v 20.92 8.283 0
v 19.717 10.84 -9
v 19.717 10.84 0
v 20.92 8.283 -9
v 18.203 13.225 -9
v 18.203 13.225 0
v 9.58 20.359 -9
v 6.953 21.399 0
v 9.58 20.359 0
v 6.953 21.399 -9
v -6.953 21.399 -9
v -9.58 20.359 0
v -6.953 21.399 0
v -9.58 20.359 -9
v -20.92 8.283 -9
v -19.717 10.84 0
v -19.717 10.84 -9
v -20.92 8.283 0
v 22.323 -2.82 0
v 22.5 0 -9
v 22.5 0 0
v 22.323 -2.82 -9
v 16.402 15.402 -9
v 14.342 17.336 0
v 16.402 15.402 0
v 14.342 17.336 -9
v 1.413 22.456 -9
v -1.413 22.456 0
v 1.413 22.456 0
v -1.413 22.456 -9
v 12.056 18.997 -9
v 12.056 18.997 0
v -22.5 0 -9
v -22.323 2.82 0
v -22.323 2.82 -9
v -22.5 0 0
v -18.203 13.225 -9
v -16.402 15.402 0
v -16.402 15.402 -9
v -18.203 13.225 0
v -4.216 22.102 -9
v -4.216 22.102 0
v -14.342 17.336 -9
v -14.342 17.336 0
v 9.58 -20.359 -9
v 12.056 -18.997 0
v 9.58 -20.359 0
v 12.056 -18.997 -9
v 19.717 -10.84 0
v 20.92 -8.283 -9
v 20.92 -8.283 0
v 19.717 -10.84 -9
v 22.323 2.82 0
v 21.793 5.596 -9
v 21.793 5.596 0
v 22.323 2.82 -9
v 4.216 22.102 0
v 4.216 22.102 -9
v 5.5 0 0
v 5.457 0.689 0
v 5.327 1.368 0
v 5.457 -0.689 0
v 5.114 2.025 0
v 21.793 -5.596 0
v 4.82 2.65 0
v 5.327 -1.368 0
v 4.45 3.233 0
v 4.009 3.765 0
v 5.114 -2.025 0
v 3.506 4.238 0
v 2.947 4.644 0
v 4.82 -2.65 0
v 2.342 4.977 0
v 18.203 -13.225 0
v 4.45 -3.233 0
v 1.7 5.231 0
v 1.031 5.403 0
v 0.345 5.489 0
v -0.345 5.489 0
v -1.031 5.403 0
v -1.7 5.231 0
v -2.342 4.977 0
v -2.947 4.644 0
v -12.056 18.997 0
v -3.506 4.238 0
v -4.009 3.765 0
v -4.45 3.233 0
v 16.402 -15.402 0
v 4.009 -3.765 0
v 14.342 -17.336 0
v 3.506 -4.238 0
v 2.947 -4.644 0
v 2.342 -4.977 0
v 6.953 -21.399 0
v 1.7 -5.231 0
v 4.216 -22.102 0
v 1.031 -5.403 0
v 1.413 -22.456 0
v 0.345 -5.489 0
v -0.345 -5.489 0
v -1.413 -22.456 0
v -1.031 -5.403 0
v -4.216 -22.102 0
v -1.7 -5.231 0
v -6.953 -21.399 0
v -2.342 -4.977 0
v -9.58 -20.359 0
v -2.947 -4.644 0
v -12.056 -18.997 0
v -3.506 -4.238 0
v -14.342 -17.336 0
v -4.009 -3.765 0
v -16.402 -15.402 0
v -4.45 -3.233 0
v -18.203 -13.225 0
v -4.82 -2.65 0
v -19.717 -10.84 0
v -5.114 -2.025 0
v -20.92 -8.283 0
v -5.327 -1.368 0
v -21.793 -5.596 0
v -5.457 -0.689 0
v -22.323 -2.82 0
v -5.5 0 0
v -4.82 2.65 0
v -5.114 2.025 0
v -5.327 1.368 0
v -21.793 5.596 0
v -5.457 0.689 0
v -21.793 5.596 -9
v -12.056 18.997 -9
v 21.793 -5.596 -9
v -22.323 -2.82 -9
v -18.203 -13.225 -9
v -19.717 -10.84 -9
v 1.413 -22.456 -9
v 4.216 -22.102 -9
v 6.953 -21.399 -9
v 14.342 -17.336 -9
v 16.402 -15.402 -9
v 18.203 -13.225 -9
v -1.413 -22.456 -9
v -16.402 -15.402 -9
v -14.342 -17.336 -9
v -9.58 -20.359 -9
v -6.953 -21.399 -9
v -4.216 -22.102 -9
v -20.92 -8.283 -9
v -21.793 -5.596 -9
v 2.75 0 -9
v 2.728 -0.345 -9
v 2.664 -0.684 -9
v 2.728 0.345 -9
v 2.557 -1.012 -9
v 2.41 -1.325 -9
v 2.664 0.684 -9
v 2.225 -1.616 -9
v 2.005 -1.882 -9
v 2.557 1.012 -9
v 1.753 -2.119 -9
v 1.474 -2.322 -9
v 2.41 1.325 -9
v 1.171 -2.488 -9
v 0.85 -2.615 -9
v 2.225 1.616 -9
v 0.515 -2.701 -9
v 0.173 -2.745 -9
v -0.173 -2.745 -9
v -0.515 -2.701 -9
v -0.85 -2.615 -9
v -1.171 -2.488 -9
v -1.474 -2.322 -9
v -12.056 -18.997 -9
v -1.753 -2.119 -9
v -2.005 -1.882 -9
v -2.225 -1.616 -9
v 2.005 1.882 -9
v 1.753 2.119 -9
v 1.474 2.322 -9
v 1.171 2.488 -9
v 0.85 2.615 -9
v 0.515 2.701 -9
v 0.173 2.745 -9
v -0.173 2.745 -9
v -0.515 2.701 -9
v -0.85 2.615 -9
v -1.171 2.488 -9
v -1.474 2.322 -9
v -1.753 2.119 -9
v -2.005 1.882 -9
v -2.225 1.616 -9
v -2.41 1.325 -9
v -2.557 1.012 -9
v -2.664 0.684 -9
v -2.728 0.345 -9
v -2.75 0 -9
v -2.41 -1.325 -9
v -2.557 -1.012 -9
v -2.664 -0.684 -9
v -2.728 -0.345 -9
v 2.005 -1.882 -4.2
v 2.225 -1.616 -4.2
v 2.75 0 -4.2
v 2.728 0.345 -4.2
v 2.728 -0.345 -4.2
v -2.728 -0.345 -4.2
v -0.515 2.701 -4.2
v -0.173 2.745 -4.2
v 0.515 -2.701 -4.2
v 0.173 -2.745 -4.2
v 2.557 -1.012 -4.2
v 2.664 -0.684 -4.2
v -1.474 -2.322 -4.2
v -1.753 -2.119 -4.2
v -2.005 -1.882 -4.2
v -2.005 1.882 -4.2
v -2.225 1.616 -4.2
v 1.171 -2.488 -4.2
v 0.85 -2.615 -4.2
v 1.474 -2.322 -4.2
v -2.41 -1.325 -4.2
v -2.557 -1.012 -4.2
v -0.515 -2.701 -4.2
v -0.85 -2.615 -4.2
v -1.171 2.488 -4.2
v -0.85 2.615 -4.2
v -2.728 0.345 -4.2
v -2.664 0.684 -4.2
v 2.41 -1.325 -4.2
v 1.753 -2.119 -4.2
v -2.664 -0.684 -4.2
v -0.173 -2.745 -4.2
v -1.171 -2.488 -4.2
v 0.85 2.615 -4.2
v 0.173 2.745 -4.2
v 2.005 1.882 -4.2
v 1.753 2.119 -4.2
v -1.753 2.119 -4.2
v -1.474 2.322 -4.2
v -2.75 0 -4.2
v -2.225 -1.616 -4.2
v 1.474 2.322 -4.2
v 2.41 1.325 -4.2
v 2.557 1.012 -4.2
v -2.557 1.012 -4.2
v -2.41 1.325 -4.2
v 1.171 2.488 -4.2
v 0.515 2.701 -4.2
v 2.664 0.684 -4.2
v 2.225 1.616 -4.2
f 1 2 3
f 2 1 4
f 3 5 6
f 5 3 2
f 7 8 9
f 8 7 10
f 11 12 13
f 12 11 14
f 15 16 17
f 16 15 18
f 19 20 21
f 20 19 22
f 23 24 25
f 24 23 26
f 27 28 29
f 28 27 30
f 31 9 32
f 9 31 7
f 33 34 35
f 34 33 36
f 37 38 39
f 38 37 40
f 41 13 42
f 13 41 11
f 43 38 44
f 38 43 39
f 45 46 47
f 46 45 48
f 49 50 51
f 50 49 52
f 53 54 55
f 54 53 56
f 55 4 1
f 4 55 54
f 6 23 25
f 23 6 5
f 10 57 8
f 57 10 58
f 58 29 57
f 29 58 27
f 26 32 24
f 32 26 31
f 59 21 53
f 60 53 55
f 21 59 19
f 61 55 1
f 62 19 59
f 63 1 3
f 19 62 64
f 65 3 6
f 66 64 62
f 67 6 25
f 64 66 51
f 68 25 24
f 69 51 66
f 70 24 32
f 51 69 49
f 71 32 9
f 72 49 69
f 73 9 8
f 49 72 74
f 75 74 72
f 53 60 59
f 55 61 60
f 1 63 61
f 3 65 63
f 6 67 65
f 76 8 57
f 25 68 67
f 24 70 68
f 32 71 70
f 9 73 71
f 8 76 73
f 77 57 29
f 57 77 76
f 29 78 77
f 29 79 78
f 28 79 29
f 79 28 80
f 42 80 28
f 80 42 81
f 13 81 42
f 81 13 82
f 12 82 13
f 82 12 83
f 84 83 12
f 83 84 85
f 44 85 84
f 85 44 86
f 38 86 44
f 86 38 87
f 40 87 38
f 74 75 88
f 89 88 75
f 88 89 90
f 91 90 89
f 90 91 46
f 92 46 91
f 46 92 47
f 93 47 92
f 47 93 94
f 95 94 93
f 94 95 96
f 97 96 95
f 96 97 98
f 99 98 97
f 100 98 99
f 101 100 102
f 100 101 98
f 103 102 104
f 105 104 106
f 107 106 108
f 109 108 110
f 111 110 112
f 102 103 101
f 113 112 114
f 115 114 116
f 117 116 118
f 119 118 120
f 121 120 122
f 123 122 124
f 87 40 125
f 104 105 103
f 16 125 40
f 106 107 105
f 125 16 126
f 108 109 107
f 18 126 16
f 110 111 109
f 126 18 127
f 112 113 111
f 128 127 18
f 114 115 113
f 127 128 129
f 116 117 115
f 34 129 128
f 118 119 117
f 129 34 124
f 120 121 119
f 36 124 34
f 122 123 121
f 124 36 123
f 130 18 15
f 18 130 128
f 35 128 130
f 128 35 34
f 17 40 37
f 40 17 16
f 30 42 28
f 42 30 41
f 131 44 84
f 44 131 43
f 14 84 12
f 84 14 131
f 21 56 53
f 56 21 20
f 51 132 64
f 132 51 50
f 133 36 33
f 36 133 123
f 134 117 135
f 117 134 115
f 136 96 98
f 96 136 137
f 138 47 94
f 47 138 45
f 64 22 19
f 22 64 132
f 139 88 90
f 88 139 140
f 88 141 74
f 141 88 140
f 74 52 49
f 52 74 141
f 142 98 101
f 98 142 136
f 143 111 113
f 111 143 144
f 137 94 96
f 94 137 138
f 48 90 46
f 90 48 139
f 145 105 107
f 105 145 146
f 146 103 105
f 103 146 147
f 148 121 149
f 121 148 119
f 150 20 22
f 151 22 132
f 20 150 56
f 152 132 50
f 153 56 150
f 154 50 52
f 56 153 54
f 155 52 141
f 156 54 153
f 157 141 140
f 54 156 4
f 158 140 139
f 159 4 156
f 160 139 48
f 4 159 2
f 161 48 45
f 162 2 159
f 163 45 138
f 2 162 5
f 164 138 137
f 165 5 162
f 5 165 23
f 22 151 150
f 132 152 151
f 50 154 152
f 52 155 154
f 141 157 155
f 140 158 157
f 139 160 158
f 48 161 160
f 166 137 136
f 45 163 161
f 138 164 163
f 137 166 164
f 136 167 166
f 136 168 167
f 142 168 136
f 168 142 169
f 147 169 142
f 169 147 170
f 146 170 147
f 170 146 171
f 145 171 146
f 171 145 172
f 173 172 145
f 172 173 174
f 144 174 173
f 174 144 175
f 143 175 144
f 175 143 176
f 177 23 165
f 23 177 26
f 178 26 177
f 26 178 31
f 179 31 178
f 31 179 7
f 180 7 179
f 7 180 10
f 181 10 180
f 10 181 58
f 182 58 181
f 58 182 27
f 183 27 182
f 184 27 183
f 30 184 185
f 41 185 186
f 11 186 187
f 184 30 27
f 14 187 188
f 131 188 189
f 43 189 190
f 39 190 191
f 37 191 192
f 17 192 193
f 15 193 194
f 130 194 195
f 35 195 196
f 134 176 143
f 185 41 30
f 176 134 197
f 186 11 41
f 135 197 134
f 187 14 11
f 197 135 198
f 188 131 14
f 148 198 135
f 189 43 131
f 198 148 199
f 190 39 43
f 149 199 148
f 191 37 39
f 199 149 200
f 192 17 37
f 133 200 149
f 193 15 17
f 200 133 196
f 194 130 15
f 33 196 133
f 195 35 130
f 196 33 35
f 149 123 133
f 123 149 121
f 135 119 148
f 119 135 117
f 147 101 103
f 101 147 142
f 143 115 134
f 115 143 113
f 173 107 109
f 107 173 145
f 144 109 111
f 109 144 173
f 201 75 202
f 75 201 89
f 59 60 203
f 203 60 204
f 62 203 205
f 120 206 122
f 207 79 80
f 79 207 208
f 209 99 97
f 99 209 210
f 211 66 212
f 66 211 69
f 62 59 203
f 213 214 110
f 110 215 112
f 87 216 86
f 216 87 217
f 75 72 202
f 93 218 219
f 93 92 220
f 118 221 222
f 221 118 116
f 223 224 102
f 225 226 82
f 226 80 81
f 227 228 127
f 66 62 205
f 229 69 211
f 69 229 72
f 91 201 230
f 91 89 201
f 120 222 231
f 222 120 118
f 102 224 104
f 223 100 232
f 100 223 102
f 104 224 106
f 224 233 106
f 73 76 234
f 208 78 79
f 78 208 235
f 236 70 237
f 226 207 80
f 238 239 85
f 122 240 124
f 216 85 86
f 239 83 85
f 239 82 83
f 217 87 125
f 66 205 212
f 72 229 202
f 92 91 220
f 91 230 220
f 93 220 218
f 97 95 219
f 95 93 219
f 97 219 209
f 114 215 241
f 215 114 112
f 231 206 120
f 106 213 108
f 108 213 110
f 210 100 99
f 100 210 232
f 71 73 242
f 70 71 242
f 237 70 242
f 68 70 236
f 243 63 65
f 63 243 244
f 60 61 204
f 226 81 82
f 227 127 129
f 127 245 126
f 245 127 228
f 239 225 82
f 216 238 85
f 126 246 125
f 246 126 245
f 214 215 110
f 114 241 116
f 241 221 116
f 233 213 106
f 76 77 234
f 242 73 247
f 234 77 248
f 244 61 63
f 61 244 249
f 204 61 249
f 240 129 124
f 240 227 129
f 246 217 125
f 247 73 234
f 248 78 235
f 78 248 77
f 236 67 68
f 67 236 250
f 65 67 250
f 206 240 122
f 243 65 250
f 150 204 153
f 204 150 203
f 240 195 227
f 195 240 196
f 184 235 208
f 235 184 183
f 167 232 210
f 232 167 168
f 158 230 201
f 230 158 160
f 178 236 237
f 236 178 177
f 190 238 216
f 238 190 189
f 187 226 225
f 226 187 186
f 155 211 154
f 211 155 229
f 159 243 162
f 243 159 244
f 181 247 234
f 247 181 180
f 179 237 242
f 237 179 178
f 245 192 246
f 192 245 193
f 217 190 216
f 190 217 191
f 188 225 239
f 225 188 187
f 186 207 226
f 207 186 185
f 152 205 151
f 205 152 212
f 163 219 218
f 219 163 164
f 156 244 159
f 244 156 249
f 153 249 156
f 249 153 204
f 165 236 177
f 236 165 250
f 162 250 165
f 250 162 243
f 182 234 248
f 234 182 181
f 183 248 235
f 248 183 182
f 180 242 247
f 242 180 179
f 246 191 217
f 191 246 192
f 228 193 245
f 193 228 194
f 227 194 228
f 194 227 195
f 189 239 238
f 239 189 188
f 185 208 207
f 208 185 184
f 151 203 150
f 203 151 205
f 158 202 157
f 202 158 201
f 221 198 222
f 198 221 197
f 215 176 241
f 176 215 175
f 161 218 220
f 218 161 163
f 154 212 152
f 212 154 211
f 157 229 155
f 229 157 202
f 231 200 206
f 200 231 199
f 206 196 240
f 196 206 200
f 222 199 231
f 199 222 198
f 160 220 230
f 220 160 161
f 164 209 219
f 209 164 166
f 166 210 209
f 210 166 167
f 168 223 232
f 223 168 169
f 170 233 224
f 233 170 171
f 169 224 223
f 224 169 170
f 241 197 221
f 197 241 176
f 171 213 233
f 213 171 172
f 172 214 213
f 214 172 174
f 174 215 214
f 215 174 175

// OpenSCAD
$fn = 50;


difference() {
	union() {
		translate(v = [0, 0, -9.0000000000]) {
			cylinder(h = 9, r = 22.5000000000);
		}
		translate(v = [0, 0, -9.0000000000]) {
			cylinder(h = 9, r = 2.8750000000);
		}
	}
	union() {
		translate(v = [0, 0, 0]) {
			rotate(a = [0, 0, 0]) {
				difference() {
					union() {
						translate(v = [0, 0, -9.0000000000]) {
							cylinder(h = 9, r = 2.2500000000);
						}
						translate(v = [0, 0, -4.2000000000]) {
							cylinder(h = 4.2000000000, r1 = 2.7500000000, r2 = 5.5000000000);
						}
						translate(v = [0, 0, -9.0000000000]) {
							cylinder(h = 9, r = 2.7500000000);
						}
						translate(v = [0, 0, -9.0000000000]) {
							cylinder(h = 9, r = 2.2500000000);
						}
					}
					union();
				}
			}
		}
	}
}
